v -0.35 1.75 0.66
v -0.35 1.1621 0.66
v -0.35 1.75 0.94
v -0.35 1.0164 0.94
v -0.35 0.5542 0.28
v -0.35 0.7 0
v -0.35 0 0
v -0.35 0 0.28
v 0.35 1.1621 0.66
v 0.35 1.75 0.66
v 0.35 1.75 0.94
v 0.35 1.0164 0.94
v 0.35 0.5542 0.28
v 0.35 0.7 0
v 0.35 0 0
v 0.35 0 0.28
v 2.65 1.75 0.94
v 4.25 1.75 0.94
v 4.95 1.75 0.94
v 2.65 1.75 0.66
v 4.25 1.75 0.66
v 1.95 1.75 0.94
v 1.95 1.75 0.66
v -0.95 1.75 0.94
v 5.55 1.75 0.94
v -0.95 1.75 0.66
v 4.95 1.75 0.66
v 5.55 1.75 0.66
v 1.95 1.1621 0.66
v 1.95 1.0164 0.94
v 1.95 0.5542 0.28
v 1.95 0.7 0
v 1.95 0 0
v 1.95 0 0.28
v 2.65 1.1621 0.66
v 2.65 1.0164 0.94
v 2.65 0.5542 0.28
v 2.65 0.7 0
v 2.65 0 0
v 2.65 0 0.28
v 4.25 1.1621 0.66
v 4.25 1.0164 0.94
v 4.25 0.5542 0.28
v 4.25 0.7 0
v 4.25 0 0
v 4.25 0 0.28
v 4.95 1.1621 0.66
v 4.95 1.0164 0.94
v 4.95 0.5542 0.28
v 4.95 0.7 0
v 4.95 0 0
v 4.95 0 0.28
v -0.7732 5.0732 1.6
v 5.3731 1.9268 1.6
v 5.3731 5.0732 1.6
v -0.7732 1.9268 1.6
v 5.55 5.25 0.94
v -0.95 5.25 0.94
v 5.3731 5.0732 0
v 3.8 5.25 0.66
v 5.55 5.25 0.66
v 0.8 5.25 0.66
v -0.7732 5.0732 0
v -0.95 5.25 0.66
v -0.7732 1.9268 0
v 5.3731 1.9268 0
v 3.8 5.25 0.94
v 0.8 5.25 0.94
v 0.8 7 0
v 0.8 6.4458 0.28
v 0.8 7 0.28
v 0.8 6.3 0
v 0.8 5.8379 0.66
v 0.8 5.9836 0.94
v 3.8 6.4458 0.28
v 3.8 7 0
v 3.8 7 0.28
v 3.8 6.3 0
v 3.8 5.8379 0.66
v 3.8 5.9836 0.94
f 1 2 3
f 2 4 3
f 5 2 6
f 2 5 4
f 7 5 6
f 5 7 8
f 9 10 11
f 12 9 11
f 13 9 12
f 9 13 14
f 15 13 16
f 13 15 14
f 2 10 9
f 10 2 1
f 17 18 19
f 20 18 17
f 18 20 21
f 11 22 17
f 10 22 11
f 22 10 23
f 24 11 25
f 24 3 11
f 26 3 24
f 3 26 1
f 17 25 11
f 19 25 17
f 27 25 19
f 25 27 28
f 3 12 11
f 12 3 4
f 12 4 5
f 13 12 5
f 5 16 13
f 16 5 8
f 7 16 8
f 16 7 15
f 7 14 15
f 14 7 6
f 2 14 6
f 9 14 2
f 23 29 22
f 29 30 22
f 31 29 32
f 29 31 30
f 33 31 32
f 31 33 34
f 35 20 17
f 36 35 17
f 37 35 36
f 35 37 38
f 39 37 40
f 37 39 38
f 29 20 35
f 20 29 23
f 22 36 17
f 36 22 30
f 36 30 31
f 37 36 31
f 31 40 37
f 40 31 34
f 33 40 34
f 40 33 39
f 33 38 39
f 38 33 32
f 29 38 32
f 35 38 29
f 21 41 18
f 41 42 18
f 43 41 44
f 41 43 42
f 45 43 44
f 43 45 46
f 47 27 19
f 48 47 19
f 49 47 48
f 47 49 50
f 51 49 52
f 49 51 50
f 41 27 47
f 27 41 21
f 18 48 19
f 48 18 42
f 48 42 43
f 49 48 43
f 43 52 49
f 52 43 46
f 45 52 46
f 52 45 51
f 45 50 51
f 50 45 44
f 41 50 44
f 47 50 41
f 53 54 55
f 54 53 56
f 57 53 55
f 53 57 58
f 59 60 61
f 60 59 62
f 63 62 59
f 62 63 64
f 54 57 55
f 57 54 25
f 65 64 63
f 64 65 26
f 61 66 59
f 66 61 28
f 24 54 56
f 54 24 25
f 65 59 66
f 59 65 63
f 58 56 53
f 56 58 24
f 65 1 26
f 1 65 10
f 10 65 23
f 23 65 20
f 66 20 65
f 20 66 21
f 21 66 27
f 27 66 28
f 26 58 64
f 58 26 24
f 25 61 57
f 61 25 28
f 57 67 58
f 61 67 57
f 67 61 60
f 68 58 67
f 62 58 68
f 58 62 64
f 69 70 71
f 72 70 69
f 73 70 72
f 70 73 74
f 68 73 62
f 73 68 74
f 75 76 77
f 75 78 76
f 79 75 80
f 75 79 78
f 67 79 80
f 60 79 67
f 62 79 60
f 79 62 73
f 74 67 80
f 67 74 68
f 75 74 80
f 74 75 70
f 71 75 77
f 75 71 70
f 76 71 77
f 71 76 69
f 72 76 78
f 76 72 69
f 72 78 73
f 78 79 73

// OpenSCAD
// file: pin.scad
// This module outputs bended pin
// _L - whole pin length
// _l - length of bottom part
// _H - whole pin height
// _th - pin thickness
// _a - bending angle
// _W - pin width
module pin(_L,_l,_H,_th,_a,_W)
{
	// Internal variables
    _d1 = _th*sin(_a) / (1-cos(_a));
    _d2 = (_th-_H)*cos(_a) / sin(_a);

	rotate([90,0,90])
    // Extrude the following polygon
	linear_extrude(height = _W, center = true, convexity = 10, twist = 0)
        polygon([[0,0],
                 [_l,0],
				 [_l+_d2,_H-_th],
				 [_L,_H-_th],
				 [_L,_H],
				 [_l+_d2-_d1,_H],
				 [_l-_d1,_th],
				 [0,_th]]);
}

// Example of usage
pin(2,1,1,0.2,115,0.5);
// file: case.scad
// This module draws case
// _L - case length
// _W - case width
// _H - case height
// _ph - top point (vertical) of pin connection area
// _pt - pin thickness
// _atl - case angle top left,
// _atr - case angle top right,
// _atu - case angle top up
// _atd - case angle top down
// _abl - case angle bottom left,
// _abr - case angle bottom right,
// _abu - case angle bottom up
// _abd - case angle bottom down
// _n_x - notch X position relative to case corner
// _n_y - notch Y position relative to case corner
// _n_d - notch diameter
// _n_z - notch_depth
module case(_L,_W,_H,_ph,_pt,_atl,_atr,_atu,_atd,_abl,_abr,_abu,_abd, _n_x, _n_y, _n_d, _n_z)
{
    _tth = _H - _ph;
    _bth = _ph - _pt;
    _dtl = _tth * cos(_atl) / sin(_atl);
    _dtr = _tth * cos(_atr) / sin(_atr);
    _dtu = _tth * cos(_atu) / sin(_atu);
    _dtd = _tth * cos(_atd) / sin(_atd);
    _dbl = _bth * cos(_abl) / sin(_abl);
    _dbr = _bth * cos(_abr) / sin(_abr);
    _dbu = _bth * cos(_abu) / sin(_abu);
    _dbd = _bth * cos(_abd) / sin(_abd);
	// Make case with notch - difference between case and small cylinder
    difference()
    {
        // This is our case
        polyhedron(
            points = [
                // top points
                [ 0 + _dtl, 0 + _dtd, _H],
                [_L - _dtr, 0 + _dtd, _H],
                [_L - _dtr,_W - _dtu, _H],
                [ 0 + _dtl,_W - _dtu, _H],
                // middle top points
                [ 0, 0,_ph],
                [_L, 0,_ph],
                [_L,_W,_ph],
                [ 0,_W,_ph],
                // middle bottom points
                [ 0, 0,_ph - _pt],
                [_L, 0,_ph - _pt],
                [_L,_W,_ph - _pt],
                [ 0,_W,_ph - _pt],
                // bottom points
                [ 0 + _dbl, 0 + _dbd, 0],
                [_L - _dbr, 0 + _dbd, 0],
                [_L - _dbr,_W - _dbu, 0],
                [ 0 + _dbl,_W - _dbu, 0]
            ],
            triangles = [
                // Top
                [ 0, 3, 2, 1],
                // Top sides
                [ 4, 0, 1, 5],
                [ 5, 1, 2, 6],
                [ 6, 2, 3, 7],
                [ 7, 3, 0, 4],
                // Middle sides
                [ 4, 5, 9, 8],
                [ 5, 6,10, 9],
                [ 6, 7,11,10],
                [ 7, 4, 8,11],
                // Bottom sides
                [12, 8, 9,13],
                [13, 9,10,14],
                [14,10,11,15],
                [15,11, 8,12],
                // Bottom
                [12,13,14,15]
            ]
        );
        // This is notch
        translate([_n_x,_n_y,_H])
            cylinder(r = _n_d/2, h = _n_z*2, center = true, $fn=10);
    }
}

// Example of usage
// case(10,5,1.5,0.7,0.3,80,80,80,80,45,45,45,45, 1,1,1);
// main file
use <case.scad>
use <pin.scad>

case_z = 1.6;
case_x = 6.5;
case_y = 3.5;
case_a = 75;

notch_d=0;
notch_depth=0.1;
notch_x=0.8;
notch_y=0.8;

side1_pins = 3;
side2_pins = 0;
side3_pins = 1;
side4_pins = 0;
pin_distance = 2.3;

pin_th = 0.28;
pin_W1 = 0.7;
pin_W2 = 0;
pin_W3 = 3;
pin_W4 = 0;
pin_L = 1.75;
pin_H = case_z/2+pin_th/2;
pin_l = 0.7;
pin_a = 125;

// Array of pins
// _cnt - number of pins
// _distance - distance between pin centres
module pins_array(_cnt, _distance, _pin_w)
{
	if (_cnt>0)
	{
		for (_i = [0:_cnt-1])
		{
			translate([_distance*_i,0,0])
				pin(pin_L,pin_l,pin_H,pin_th,pin_a,_pin_w);
		}
	}
}

// Complete model
union()
{
	// Top pins
	translate([(side1_pins-side3_pins)*pin_distance/2,case_y+pin_L*2,0])
		mirror([0,1,0])
			pins_array(side3_pins, pin_distance, pin_W3);

	// Bottom pins
	pins_array(side1_pins, pin_distance, pin_W1);

	// Left pins
	translate([-(case_x-(side1_pins-1)*pin_distance)/2 - pin_L,pin_L+case_y/2-(side4_pins-1)*pin_distance/2,0])
		mirror([1,0,0])
			rotate([0,0,90])
				pins_array(side4_pins, pin_distance);

	// Right pins
	translate([-(case_x-(side1_pins-1)*pin_distance)/2-pin_L+case_x+2*pin_L,pin_L+case_y/2-(side2_pins-1)*pin_distance/2,0])
		mirror([0,1,0])
			mirror([0,1,0])
				rotate([0,0,90])
					pins_array(side2_pins, pin_distance);

	// Case
	translate([-(case_x-(side1_pins-1)*pin_distance)/2,pin_L,0])
		case(case_x,case_y,case_z,pin_H,pin_th,case_a,case_a,case_a,case_a,case_a,case_a,case_a,case_a, notch_x,notch_y,notch_d,notch_depth);
}
